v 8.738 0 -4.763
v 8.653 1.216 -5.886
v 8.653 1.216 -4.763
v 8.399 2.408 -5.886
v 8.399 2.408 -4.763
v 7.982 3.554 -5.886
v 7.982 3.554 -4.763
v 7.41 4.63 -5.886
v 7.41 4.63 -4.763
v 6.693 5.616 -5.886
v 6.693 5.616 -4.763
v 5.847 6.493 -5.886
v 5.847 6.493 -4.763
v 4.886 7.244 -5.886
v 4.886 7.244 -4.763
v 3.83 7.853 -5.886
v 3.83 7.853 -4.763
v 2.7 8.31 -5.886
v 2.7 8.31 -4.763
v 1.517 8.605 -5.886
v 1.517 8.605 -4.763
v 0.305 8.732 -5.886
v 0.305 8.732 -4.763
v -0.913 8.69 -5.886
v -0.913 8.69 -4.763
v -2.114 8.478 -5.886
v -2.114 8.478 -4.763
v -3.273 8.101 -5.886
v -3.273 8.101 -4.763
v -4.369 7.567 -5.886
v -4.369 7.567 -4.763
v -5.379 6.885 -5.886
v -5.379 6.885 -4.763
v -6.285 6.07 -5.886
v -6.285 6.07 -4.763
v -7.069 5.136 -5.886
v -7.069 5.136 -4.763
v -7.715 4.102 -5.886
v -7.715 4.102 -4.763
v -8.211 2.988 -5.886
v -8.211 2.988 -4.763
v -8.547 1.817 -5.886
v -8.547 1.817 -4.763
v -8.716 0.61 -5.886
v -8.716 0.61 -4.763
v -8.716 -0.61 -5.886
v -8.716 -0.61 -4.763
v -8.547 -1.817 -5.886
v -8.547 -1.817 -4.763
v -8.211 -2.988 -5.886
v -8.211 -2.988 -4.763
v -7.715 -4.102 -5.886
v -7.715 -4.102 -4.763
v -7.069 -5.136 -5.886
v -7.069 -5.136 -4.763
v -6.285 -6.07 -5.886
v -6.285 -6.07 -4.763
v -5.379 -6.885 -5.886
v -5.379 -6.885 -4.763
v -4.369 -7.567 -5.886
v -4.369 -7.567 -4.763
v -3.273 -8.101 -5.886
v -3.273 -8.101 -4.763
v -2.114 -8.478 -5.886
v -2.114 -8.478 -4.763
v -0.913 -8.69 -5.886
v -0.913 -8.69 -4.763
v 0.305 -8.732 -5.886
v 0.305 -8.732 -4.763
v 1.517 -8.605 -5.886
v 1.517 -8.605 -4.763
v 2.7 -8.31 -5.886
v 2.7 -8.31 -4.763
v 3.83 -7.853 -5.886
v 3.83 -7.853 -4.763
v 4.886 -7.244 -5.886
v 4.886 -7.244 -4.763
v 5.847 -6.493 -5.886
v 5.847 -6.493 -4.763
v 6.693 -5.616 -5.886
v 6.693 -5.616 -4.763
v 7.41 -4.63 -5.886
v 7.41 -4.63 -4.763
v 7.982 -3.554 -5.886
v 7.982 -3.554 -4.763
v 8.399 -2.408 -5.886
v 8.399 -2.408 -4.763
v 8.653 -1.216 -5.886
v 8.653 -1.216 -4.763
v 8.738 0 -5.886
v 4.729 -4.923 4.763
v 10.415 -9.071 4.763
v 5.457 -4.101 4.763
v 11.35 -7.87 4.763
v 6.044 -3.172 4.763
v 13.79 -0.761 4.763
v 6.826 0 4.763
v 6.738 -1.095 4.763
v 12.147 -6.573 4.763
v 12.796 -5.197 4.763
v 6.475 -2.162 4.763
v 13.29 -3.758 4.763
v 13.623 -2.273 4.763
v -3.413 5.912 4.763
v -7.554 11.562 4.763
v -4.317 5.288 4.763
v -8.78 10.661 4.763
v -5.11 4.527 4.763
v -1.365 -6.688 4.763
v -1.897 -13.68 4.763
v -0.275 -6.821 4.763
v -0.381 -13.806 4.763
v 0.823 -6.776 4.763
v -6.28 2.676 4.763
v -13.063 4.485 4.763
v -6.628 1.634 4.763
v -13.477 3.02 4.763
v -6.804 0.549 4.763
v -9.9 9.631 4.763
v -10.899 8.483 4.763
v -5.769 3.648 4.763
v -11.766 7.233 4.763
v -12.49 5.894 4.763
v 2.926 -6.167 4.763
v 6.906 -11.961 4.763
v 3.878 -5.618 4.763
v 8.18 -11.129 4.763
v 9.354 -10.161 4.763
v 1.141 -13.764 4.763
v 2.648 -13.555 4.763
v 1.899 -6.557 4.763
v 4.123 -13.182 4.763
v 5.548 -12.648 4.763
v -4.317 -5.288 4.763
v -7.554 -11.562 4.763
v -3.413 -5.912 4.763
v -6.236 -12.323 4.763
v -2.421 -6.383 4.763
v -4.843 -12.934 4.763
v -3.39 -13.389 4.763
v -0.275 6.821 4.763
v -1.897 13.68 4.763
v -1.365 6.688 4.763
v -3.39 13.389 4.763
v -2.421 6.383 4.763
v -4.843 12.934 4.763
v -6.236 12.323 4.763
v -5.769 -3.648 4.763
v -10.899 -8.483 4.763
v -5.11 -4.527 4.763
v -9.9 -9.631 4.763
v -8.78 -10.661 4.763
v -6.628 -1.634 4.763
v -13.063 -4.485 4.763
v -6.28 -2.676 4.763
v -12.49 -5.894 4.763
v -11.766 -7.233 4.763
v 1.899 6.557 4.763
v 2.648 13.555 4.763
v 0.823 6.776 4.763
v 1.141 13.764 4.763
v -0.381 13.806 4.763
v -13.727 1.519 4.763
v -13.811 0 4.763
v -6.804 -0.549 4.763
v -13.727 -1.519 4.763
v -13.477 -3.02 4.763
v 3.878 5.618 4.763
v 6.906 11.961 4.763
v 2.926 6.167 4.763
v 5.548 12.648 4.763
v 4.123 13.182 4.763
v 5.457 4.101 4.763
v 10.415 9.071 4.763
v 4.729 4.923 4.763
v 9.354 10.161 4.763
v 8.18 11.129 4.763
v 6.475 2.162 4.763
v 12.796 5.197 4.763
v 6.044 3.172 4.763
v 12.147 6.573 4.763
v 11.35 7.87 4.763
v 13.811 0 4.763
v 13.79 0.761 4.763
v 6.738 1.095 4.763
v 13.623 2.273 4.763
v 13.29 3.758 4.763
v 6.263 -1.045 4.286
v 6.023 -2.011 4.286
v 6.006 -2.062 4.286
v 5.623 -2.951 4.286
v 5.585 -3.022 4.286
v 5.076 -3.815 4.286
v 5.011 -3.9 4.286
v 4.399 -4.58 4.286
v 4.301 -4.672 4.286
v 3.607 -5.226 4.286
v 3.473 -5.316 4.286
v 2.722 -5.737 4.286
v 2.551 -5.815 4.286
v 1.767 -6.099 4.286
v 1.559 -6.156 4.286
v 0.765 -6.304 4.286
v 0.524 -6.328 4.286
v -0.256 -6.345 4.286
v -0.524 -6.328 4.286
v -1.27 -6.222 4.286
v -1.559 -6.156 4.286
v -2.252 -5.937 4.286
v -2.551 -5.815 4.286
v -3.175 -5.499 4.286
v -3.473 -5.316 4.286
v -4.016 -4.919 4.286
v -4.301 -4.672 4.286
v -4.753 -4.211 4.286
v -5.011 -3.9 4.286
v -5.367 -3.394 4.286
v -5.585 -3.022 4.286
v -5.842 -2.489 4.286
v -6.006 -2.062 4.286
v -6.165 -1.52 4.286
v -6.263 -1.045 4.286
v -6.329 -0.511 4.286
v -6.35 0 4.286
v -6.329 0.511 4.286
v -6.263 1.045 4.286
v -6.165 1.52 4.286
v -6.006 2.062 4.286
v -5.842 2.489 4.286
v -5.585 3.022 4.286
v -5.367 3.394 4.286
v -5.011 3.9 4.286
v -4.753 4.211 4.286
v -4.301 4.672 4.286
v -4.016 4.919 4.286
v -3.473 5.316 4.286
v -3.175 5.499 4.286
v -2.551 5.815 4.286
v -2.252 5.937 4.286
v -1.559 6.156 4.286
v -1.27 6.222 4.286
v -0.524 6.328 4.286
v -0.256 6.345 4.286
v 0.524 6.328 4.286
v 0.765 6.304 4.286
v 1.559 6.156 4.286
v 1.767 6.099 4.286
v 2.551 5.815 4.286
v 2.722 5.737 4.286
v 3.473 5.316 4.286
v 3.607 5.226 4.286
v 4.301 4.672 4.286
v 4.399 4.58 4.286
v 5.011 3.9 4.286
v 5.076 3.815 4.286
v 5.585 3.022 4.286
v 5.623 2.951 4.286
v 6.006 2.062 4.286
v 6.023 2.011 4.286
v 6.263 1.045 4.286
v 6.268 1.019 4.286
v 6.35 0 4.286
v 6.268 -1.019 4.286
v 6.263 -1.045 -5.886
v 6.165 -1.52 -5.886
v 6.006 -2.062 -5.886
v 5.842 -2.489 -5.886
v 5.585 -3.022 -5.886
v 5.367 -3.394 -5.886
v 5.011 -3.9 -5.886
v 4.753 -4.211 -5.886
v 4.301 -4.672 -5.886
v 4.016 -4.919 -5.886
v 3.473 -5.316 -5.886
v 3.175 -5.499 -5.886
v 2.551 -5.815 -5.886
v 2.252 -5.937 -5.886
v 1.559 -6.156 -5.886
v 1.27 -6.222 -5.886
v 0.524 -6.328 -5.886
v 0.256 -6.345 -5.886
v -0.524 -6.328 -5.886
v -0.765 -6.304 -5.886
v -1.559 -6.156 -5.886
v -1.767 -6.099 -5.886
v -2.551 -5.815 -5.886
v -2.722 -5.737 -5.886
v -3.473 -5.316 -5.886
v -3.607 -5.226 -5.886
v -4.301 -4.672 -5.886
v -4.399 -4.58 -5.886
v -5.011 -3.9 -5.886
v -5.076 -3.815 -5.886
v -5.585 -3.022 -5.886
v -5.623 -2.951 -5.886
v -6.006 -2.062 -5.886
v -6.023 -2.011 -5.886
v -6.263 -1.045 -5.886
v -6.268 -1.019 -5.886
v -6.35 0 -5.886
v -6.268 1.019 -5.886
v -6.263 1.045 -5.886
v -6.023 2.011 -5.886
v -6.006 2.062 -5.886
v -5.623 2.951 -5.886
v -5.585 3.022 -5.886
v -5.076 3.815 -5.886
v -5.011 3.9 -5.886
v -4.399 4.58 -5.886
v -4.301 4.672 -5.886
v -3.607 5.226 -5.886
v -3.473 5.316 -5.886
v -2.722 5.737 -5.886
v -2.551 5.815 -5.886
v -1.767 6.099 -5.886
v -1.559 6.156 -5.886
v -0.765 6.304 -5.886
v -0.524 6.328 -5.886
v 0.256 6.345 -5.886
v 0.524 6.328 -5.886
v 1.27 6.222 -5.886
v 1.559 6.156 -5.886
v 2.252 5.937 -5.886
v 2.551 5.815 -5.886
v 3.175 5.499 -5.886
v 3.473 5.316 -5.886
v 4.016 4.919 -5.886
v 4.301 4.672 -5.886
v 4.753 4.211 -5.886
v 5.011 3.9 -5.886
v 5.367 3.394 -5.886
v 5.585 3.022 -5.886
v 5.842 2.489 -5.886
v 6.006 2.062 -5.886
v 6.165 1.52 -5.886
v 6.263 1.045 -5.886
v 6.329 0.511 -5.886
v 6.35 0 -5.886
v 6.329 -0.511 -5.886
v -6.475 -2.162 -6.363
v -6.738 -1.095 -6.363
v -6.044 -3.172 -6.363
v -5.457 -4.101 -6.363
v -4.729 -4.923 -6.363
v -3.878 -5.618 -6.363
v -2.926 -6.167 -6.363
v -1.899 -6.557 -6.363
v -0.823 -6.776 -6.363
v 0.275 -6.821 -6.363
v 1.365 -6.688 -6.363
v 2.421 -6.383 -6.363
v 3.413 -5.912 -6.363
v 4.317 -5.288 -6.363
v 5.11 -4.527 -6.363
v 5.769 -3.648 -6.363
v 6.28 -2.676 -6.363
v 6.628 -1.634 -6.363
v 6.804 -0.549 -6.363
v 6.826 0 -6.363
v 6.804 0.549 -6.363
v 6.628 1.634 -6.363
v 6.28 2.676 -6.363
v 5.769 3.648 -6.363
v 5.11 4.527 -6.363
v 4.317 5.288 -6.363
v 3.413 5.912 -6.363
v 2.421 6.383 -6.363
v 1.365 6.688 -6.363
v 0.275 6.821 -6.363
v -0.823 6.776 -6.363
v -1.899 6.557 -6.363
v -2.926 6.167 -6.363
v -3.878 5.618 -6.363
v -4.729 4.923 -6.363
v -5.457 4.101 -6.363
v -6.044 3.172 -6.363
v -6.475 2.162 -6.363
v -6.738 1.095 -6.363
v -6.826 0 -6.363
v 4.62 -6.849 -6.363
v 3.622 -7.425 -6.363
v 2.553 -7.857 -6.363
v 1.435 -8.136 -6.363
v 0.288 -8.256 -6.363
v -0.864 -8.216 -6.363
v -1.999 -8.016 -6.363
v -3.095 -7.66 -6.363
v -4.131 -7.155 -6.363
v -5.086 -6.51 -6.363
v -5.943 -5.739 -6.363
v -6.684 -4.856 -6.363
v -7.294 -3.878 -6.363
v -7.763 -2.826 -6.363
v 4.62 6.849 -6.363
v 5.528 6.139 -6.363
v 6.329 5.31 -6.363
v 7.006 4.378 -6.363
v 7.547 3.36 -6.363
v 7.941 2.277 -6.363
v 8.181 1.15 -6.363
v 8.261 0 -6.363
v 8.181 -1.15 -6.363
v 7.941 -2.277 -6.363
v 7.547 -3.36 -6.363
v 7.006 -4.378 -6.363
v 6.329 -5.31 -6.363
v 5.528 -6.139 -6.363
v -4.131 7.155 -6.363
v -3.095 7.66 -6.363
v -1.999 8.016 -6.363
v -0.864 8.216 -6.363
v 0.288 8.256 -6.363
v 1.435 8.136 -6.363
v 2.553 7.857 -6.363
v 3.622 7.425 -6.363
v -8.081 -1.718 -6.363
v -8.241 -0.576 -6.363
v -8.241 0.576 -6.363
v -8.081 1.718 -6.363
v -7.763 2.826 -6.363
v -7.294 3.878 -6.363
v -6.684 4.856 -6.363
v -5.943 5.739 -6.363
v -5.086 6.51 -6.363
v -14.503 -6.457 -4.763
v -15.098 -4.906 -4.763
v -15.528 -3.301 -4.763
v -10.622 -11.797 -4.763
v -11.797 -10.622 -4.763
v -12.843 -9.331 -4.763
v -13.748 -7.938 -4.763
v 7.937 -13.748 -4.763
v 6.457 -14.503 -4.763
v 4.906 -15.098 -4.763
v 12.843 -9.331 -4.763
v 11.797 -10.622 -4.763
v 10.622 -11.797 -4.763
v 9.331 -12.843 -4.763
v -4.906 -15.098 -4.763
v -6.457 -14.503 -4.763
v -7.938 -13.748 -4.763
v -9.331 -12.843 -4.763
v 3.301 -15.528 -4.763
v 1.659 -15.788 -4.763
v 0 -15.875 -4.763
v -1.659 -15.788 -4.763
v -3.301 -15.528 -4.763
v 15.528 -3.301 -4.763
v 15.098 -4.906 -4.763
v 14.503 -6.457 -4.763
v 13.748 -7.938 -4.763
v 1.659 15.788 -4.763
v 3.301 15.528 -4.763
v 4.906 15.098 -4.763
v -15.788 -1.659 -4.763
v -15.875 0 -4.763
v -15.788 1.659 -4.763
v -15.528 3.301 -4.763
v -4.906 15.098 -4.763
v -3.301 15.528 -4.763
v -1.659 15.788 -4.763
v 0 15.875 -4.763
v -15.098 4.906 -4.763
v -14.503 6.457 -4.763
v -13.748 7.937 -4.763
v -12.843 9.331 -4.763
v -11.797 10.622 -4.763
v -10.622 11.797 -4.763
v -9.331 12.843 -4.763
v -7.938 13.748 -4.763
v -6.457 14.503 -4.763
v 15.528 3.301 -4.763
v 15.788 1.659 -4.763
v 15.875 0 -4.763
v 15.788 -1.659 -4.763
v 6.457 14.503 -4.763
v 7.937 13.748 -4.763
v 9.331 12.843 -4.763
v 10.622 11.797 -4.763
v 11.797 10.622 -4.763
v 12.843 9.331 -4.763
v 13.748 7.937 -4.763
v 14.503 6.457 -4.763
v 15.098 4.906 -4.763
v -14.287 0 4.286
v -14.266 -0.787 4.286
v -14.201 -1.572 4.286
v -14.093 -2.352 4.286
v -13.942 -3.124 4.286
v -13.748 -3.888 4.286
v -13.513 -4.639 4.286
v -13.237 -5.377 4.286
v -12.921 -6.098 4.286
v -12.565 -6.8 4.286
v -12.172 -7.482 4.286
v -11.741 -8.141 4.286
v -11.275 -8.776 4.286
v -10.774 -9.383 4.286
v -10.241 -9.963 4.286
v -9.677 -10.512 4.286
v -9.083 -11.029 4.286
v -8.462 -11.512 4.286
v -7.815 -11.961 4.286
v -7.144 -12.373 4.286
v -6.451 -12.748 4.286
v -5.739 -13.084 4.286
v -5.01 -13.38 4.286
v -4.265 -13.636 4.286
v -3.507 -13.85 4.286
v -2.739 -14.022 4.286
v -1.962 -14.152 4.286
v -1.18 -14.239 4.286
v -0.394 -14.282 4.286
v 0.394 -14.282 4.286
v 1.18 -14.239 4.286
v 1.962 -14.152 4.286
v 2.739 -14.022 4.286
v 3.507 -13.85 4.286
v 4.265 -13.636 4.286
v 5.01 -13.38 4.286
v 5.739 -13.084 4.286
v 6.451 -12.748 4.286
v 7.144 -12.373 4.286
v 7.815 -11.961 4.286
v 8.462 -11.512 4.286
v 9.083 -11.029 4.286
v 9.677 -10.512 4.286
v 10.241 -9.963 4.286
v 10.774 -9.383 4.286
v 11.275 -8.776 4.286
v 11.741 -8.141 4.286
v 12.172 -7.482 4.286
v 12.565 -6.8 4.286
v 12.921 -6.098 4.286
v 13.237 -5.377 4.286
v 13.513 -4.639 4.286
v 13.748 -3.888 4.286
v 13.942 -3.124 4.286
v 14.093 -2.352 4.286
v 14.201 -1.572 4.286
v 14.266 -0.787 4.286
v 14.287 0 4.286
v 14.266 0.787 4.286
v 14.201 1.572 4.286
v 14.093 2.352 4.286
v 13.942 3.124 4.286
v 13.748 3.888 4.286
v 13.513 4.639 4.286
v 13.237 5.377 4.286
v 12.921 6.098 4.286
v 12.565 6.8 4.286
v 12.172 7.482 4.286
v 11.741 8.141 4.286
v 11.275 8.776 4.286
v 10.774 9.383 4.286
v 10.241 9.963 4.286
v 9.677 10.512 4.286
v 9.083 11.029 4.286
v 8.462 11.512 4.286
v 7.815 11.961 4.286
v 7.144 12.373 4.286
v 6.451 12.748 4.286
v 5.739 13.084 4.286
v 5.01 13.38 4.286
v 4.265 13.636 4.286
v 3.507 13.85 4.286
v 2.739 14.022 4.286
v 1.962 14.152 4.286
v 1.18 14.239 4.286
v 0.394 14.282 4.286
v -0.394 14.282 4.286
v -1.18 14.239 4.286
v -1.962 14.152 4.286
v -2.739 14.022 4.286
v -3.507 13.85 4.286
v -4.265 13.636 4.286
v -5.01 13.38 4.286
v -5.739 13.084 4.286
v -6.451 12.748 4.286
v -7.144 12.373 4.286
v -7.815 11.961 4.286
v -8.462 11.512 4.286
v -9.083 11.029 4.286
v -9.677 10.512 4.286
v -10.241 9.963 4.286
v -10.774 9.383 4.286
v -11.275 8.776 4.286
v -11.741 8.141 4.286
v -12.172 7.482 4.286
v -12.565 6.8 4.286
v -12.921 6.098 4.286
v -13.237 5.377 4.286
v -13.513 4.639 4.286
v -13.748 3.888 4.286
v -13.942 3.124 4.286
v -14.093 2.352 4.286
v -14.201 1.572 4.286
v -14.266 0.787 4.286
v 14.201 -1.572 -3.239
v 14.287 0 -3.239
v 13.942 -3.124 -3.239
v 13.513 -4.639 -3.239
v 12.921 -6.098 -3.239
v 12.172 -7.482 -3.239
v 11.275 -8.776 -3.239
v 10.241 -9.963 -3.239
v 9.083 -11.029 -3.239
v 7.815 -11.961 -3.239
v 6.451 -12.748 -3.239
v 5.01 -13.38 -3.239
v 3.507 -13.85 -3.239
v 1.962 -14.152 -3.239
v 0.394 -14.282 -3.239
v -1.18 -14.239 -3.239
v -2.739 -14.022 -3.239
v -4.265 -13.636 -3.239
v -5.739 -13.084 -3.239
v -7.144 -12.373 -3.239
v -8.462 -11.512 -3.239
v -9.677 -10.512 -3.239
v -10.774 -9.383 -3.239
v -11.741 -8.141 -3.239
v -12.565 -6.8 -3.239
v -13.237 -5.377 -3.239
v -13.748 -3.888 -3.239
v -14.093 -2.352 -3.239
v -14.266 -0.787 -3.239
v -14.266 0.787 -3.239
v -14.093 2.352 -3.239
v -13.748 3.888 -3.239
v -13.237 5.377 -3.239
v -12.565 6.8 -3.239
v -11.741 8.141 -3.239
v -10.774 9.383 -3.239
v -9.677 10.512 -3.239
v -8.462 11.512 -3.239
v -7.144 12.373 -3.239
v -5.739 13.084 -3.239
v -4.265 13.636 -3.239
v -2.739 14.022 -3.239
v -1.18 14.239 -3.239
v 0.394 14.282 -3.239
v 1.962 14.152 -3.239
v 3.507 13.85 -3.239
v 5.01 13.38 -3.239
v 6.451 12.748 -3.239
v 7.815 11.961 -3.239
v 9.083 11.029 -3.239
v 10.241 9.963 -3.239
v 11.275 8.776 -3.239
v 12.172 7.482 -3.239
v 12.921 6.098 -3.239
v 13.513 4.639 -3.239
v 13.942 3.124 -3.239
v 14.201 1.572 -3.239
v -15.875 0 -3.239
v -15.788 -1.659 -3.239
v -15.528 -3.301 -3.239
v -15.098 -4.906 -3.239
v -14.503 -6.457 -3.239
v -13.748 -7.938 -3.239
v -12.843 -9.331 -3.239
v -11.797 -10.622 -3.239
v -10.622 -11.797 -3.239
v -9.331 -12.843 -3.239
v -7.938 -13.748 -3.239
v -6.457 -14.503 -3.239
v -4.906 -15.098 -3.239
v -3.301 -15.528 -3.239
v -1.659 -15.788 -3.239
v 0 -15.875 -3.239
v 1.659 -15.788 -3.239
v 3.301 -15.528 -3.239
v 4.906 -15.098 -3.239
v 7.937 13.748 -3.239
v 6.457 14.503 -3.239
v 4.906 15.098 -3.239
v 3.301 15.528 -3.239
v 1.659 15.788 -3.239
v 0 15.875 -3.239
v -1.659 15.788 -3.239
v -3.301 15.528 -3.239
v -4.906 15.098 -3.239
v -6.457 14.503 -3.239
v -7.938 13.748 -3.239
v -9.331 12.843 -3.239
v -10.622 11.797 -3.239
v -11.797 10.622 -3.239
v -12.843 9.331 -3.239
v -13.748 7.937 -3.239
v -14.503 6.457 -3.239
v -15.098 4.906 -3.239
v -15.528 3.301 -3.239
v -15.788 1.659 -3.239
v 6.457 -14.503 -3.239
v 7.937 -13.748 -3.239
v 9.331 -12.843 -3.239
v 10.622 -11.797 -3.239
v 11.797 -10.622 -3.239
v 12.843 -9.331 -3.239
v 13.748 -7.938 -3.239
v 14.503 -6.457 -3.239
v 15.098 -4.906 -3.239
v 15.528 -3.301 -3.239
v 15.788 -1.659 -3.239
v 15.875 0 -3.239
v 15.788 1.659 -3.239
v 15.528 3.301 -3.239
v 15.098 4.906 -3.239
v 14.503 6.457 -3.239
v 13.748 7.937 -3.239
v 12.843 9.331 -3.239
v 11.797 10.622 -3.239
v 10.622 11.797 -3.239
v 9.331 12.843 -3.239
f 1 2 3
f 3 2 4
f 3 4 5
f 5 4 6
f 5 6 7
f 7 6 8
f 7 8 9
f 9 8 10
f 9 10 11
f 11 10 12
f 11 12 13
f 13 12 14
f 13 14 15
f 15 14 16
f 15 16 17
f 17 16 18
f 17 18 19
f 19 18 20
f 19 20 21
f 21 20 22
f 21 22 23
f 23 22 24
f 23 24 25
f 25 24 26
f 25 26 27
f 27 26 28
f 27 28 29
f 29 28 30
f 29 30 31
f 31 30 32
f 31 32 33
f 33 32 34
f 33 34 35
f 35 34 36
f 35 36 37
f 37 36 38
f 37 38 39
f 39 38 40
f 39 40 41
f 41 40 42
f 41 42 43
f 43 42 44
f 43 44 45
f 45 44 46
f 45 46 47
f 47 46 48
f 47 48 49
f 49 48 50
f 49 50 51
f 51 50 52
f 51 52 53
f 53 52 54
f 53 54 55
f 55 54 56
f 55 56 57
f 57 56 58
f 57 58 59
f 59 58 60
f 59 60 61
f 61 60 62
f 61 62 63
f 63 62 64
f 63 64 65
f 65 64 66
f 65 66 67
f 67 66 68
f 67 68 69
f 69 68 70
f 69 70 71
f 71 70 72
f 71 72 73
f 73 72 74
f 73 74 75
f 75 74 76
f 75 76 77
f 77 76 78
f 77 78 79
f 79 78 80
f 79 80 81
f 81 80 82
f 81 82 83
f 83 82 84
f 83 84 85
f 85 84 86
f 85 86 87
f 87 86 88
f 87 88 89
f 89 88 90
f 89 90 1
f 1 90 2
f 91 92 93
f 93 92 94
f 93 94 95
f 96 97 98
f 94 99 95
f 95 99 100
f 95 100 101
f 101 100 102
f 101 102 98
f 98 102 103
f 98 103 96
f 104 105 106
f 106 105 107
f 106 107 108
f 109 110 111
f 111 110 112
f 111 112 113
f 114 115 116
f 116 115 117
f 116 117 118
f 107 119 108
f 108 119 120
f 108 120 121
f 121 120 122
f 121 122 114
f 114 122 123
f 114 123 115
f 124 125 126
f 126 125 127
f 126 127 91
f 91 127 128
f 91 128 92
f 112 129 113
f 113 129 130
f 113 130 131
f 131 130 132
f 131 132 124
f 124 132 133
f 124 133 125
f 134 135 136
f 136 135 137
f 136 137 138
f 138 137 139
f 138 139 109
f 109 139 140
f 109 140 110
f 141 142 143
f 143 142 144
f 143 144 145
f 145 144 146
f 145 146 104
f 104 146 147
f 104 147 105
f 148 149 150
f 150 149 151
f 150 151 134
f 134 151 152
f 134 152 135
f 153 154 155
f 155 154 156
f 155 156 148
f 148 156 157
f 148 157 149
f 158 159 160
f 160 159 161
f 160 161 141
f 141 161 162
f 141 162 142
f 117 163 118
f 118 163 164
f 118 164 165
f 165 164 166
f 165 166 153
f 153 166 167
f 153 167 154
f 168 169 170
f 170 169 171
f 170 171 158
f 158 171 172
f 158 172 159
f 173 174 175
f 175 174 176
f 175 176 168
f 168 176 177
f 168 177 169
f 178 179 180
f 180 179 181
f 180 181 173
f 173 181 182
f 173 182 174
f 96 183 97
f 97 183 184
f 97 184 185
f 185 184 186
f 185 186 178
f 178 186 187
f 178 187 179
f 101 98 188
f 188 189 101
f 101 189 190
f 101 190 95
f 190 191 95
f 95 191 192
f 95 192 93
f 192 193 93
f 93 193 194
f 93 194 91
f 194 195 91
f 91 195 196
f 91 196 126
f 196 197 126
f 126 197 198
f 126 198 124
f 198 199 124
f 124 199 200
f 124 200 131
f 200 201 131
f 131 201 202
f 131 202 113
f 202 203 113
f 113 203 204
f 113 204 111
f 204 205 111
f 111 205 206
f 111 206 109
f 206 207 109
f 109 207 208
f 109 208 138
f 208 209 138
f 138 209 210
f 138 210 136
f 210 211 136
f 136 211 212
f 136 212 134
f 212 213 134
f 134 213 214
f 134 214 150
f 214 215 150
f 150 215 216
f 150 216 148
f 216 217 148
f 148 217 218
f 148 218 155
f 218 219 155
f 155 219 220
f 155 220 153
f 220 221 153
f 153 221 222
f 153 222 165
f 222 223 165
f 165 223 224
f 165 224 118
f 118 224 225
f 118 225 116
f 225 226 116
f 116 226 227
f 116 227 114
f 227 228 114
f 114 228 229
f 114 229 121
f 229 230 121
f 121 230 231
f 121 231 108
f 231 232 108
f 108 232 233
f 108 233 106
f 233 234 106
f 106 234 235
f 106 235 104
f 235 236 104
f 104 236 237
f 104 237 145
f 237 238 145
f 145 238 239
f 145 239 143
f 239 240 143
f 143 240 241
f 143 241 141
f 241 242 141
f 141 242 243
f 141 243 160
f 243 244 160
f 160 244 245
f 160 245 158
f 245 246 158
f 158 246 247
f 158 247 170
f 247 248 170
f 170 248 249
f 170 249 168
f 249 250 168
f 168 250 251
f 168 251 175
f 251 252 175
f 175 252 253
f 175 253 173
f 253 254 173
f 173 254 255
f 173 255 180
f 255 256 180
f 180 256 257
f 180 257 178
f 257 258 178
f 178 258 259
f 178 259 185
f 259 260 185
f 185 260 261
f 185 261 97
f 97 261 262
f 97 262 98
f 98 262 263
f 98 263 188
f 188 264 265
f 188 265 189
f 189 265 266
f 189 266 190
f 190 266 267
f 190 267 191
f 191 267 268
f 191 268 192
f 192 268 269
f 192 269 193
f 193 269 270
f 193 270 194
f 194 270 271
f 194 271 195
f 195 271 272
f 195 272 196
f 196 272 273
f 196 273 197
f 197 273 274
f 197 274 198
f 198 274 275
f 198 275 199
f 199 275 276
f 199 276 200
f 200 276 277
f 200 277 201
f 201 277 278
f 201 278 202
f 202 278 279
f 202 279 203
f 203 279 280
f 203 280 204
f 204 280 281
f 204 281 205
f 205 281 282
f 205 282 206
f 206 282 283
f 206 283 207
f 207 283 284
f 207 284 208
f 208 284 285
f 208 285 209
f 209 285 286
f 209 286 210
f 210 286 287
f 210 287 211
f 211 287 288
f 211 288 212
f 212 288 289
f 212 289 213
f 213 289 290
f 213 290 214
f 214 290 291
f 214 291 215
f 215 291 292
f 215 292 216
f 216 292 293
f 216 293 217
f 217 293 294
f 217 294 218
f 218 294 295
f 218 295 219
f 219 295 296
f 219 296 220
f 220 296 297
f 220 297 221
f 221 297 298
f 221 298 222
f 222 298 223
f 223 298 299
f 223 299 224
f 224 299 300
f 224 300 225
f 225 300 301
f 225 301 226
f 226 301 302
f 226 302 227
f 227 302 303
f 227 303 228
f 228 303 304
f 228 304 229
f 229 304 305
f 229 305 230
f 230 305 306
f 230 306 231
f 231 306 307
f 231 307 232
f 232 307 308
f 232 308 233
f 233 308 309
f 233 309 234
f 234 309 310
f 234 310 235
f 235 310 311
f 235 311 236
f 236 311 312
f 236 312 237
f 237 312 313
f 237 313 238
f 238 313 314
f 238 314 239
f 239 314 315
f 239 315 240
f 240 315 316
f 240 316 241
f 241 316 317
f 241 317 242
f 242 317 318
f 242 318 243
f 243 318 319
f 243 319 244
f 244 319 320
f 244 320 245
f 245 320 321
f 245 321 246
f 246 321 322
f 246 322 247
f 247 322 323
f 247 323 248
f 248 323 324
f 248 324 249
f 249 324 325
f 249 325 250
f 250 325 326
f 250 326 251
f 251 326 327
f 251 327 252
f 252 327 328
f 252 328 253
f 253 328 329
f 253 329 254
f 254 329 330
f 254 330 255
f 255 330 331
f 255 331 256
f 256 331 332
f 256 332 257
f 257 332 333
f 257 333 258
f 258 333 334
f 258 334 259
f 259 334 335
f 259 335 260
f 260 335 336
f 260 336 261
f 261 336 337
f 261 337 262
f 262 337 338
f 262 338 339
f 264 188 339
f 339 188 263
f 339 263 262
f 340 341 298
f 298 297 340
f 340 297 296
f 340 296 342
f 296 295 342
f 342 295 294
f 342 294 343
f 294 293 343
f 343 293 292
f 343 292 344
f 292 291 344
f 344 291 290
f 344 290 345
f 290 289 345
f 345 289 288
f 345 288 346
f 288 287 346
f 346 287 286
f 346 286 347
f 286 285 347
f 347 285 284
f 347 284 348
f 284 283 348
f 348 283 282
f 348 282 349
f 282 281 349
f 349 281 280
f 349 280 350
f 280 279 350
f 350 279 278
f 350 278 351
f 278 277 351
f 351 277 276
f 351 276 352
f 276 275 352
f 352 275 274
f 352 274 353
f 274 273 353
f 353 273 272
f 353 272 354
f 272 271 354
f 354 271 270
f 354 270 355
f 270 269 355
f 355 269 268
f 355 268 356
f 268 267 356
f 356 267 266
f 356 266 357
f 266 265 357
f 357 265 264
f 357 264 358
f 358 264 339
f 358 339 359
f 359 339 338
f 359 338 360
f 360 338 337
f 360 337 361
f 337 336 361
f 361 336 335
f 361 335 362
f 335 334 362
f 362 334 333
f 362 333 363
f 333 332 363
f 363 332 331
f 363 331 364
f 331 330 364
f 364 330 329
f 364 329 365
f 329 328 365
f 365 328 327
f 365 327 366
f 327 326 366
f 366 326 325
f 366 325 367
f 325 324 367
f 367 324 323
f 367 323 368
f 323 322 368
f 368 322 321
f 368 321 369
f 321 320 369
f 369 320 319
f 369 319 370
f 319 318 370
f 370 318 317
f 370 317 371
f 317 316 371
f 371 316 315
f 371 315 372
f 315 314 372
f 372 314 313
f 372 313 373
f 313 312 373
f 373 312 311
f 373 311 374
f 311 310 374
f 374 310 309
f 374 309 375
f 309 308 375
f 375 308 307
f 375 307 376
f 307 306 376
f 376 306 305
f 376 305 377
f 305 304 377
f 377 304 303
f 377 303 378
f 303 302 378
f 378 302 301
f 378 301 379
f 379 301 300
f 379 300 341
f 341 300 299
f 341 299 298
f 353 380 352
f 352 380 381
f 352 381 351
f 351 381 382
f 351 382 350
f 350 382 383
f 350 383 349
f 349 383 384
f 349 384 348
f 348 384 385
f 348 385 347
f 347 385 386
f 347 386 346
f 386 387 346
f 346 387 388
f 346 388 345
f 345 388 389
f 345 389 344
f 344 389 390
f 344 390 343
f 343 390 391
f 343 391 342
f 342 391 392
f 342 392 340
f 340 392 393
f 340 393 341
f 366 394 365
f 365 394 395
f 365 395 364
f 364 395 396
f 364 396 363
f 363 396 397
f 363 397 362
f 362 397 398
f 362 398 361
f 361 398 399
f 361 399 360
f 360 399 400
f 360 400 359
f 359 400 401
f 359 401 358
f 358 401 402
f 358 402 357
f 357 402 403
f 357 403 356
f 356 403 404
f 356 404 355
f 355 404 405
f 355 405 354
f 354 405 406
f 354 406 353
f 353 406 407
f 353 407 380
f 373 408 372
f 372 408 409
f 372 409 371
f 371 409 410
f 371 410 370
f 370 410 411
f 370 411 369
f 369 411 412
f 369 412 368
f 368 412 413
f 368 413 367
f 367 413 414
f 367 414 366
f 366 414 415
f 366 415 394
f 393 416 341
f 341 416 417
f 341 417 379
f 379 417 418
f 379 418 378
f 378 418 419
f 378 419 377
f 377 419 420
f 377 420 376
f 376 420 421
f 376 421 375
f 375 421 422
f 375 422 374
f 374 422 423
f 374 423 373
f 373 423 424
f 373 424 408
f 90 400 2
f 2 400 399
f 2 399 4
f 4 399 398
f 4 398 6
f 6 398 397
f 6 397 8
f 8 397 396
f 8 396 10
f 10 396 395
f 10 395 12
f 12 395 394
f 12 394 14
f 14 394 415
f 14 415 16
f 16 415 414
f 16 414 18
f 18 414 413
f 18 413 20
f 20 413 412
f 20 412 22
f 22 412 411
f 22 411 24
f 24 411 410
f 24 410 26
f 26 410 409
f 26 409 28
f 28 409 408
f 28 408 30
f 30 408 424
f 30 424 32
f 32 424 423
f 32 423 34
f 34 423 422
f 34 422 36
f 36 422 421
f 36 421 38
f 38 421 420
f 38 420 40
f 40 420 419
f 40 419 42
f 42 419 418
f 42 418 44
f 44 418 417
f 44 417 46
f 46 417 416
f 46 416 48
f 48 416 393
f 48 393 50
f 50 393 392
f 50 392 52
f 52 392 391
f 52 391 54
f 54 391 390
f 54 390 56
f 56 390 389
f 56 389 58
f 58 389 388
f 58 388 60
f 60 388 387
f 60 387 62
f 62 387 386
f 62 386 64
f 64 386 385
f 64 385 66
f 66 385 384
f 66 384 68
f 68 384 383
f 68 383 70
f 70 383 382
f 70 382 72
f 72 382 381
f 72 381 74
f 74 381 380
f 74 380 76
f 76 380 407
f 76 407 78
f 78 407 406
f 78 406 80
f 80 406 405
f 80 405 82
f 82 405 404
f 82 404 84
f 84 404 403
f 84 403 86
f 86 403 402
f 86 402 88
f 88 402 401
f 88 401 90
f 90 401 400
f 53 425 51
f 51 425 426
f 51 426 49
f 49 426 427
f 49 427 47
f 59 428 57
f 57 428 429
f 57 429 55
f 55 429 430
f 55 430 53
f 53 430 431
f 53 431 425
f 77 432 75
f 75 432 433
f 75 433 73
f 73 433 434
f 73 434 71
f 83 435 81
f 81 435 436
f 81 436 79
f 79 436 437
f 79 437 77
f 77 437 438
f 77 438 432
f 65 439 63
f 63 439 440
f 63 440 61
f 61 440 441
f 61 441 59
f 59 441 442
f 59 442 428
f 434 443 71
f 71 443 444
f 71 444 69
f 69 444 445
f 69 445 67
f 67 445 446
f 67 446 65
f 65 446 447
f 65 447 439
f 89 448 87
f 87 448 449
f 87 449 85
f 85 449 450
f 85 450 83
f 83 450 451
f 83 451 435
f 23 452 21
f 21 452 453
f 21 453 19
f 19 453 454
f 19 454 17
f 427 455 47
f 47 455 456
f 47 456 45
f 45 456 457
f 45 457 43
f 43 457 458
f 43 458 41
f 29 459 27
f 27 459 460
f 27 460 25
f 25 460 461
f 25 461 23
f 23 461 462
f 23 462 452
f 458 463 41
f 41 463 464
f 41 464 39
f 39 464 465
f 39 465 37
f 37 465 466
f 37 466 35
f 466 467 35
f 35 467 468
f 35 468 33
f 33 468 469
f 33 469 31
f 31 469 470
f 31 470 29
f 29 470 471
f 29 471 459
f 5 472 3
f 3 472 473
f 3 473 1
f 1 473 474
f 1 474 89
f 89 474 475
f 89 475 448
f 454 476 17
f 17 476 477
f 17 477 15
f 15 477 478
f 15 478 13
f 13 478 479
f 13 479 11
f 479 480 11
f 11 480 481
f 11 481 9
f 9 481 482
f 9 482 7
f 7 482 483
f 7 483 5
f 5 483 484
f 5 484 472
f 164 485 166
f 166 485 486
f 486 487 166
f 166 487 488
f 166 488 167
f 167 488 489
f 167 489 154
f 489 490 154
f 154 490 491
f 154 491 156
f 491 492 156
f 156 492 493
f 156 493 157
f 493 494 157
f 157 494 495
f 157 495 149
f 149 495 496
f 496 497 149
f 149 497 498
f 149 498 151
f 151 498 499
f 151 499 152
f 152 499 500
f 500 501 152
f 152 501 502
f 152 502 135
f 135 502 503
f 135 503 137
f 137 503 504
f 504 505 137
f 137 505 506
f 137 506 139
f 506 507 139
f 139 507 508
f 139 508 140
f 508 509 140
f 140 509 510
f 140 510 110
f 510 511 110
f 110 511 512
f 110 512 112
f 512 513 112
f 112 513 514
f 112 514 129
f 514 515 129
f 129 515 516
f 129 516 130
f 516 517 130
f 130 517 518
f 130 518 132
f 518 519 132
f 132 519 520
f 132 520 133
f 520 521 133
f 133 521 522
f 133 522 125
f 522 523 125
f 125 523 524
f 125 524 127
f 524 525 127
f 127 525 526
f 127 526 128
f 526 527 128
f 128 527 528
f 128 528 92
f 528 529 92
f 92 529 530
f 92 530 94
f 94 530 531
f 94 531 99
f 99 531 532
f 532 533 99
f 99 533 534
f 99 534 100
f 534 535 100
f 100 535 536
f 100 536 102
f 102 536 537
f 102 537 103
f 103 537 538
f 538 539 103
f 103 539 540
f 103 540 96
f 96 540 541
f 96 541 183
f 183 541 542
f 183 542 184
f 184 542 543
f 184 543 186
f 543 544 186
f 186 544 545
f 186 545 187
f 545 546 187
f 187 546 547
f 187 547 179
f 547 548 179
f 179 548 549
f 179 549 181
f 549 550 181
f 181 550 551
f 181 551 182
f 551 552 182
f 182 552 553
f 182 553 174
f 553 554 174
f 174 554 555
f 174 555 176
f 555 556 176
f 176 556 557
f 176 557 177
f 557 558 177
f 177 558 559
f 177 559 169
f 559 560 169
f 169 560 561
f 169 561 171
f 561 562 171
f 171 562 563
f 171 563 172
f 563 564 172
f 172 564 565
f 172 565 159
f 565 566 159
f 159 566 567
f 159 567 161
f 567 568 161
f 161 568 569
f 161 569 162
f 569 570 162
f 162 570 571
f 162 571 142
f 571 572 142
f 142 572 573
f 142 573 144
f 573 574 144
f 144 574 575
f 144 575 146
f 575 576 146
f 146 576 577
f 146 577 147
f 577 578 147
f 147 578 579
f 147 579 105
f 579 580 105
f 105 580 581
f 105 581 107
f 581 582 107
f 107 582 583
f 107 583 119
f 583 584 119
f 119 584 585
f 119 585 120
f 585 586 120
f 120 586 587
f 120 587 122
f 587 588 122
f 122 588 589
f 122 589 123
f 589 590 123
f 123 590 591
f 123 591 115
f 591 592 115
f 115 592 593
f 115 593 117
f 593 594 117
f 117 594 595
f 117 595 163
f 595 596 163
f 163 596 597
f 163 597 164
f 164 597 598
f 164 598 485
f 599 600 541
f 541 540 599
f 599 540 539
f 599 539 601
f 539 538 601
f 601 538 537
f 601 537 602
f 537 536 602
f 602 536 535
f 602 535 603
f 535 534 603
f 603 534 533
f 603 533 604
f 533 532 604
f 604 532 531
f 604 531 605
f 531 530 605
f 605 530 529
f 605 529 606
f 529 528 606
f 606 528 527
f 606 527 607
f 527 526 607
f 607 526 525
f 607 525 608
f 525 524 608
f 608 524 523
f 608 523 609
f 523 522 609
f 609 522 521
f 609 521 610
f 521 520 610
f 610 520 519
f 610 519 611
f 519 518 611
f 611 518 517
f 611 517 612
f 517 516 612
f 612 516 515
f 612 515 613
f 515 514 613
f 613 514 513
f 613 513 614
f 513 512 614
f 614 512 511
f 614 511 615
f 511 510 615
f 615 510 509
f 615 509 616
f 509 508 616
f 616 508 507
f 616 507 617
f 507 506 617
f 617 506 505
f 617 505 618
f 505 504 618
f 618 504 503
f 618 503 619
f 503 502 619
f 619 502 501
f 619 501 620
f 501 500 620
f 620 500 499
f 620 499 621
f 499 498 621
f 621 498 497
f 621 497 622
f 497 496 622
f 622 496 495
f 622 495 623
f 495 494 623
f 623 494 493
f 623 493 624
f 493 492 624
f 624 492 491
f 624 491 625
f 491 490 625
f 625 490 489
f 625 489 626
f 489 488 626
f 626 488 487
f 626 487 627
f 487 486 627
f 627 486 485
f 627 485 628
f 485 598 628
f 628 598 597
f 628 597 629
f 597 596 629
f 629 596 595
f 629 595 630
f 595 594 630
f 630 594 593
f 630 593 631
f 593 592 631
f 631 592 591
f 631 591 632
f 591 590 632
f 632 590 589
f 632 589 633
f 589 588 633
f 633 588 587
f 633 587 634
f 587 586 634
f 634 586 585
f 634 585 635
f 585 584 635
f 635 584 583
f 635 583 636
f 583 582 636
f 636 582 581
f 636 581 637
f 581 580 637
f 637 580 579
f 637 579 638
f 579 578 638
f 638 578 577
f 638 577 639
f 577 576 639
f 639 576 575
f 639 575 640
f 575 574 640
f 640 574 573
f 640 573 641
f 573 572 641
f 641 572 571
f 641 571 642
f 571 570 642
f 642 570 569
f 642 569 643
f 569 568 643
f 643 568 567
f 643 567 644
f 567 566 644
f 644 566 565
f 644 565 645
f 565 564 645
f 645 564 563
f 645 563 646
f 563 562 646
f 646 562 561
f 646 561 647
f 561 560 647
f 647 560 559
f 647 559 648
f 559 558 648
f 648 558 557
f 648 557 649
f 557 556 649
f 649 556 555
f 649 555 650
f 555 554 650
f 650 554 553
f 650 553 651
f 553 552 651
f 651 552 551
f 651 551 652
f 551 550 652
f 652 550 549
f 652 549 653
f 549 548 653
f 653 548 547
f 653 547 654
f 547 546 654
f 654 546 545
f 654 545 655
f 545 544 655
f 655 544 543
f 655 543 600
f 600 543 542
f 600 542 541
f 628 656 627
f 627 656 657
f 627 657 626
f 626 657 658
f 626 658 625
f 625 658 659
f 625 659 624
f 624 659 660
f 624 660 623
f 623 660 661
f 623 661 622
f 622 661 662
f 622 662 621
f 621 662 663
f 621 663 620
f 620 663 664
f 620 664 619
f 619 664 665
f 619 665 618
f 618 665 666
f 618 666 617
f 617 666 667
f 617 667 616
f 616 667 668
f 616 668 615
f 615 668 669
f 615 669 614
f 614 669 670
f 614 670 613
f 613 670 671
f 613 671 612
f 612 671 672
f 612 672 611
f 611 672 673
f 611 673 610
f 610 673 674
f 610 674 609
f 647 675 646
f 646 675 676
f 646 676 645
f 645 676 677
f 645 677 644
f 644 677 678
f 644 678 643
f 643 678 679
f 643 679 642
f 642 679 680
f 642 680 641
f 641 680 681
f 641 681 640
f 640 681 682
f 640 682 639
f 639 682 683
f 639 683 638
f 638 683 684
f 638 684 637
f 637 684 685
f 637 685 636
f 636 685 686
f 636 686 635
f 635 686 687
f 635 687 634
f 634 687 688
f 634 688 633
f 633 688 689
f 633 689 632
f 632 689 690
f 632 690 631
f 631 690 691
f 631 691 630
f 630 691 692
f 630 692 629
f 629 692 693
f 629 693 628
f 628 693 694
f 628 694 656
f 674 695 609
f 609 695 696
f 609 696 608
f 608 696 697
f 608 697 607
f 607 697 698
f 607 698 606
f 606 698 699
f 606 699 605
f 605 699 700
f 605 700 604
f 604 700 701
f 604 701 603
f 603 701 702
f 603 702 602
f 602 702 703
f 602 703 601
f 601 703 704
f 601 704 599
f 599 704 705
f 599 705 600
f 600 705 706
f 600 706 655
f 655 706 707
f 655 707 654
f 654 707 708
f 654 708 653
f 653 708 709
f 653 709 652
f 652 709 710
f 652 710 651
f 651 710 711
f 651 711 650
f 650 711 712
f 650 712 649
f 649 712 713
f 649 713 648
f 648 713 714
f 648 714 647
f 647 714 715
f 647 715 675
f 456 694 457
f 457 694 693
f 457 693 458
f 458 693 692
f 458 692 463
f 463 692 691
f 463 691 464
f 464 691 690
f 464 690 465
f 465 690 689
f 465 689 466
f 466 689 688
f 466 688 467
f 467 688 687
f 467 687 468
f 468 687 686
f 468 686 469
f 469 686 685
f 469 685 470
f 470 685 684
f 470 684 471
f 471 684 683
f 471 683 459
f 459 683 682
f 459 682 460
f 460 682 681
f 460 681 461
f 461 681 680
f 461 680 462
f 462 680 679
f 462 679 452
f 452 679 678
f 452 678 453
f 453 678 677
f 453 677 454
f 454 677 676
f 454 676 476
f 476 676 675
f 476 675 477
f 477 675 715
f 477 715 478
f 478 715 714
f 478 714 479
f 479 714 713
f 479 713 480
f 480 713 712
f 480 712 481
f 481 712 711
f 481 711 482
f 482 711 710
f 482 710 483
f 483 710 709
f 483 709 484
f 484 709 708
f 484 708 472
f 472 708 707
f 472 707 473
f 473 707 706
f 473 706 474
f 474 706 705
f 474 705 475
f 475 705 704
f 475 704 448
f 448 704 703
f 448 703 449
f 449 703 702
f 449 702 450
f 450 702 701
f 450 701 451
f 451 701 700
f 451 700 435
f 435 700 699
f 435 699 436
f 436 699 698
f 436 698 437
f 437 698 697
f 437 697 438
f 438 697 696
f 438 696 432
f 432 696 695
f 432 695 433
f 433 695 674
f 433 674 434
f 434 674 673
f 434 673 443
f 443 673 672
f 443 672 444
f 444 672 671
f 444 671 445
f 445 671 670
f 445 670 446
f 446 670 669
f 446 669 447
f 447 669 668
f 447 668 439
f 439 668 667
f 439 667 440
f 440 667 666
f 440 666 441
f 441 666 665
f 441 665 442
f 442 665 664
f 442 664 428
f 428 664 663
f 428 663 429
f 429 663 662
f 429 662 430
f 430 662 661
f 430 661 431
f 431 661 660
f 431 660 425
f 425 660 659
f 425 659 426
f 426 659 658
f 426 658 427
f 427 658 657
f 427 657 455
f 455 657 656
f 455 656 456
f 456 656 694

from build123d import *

# Parameters (mm, degrees)
SKETCH6_W           = 1.524
SKETCH6_H           = 5.1562
CIRPATTERN1_COUNT   = 12
SKETCH7_R           = 13.81125
SKETCH7_R_2         = 6.82625
BOSS_EXTRUDE1_DEPTH = 9.525


with BuildPart() as part:
    # Sketch1 → Revolve1 (revolve)
    with BuildSketch(Plane(origin=(0, 0, 0), x_dir=(0, 0, -1), z_dir=(1, 0, 0)), mode=Mode.PRIVATE) as revolve1_sk:
        with BuildLine():
            Line((4.28625, 14.2875), (-4.28625, 14.2875))
            Line((-4.28625, 14.2875), (-4.7625, 13.81125))
            Line((-4.7625, 13.81125), (-4.7625, 10.7188))
            Line((-4.7625, 10.7188), (-2.347405, 10.7188))
            ThreePointArc((-2.347405, 10.7188), (0, 12.7), (2.347405, 10.7188))
            Line((2.347405, 10.7188), (4.7625, 10.7188))
            Line((4.7625, 10.7188), (4.7625, 13.81125))
            Line((4.7625, 13.81125), (4.28625, 14.2875))
        make_face()
    revolve(revolve1_sk.sketch.rotate(Axis((0, 0, 4.7625), (0, 0, -1)), 90), axis=Axis((0, 0, 4.7625), (0, 0, -1)))

    # Sketch6 → Revolve6 (revolve)
    with BuildSketch(Plane(origin=(0, 0, 0), x_dir=(0, 0, -1), z_dir=(1, 0, 0)), mode=Mode.PRIVATE) as revolve6_sk:
        with Locations((4.0005, 13.2969)):
            Rectangle(SKETCH6_W, SKETCH6_H)
    revolve(revolve6_sk.sketch.rotate(Axis((0, 0, -4.7625), (0, 0, 1)), 270), axis=Axis((0, 0, -4.7625), (0, 0, 1)))



with BuildPart() as body_2:
    # Sketch3 → Revolve3 (revolve)
    with BuildSketch(Plane(origin=(0, 0, 0), x_dir=(0, 0, -1), z_dir=(1, 0, 0)), mode=Mode.PRIVATE) as revolve3_sk:
        with BuildLine():
            Line((-4.7625, 6.82625), (-4.7625, 8.26135))
            Line((-4.7625, 8.26135), (-4.28625, 8.7376))
            Line((-4.28625, 8.7376), (-1.780538, 8.7376))
            ThreePointArc((-1.780538, 8.7376), (0, 7.9375), (1.780538, 8.7376))
            Line((1.780538, 8.7376), (5.88645, 8.7376))
            Line((5.88645, 8.7376), (6.3627, 8.26135))
            Line((6.3627, 8.26135), (6.3627, 6.82625))
            Line((6.3627, 6.82625), (5.88645, 6.35))
            Line((5.88645, 6.35), (-4.28625, 6.35))
            Line((-4.28625, 6.35), (-4.7625, 6.82625))
        make_face()
    revolve(revolve3_sk.sketch.rotate(Axis((0, 0, 4.7625), (0, 0, -1)), 90), axis=Axis((0, 0, 4.7625), (0, 0, -1)))


with BuildPart() as body_3:
    # Sketch4 → Revolve4 (revolve)
    with BuildSketch(Plane(origin=(0, 0, 0), x_dir=(0, 0, -1), z_dir=(1, 0, 0))):
        with BuildLine():
            Line((-2.38125, 10.31875), (2.38125, 10.31875))
            ThreePointArc((2.38125, 10.31875), (0, 12.7), (-2.38125, 10.31875))
        make_face()
    revolve(axis=Axis((0, 10.31875, 2.38125), (0, 0, -1)))


with BuildPart() as cirpattern1_1:
    # CirPattern1: pattern copy
    add(body_3.part.rotate(Axis((0, 0, 0), (0, 0, 1)), 1 * 360 / CIRPATTERN1_COUNT))


with BuildPart() as cirpattern1_2:
    # CirPattern1: pattern copy
    add(body_3.part.rotate(Axis((0, 0, 0), (0, 0, 1)), 2 * 360 / CIRPATTERN1_COUNT))


with BuildPart() as cirpattern1_3:
    # CirPattern1: pattern copy
    add(body_3.part.rotate(Axis((0, 0, 0), (0, 0, 1)), 3 * 360 / CIRPATTERN1_COUNT))


with BuildPart() as cirpattern1_4:
    # CirPattern1: pattern copy
    add(body_3.part.rotate(Axis((0, 0, 0), (0, 0, 1)), 4 * 360 / CIRPATTERN1_COUNT))


with BuildPart() as cirpattern1_5:
    # CirPattern1: pattern copy
    add(body_3.part.rotate(Axis((0, 0, 0), (0, 0, 1)), 5 * 360 / CIRPATTERN1_COUNT))


with BuildPart() as cirpattern1_6:
    # CirPattern1: pattern copy
    add(body_3.part.rotate(Axis((0, 0, 0), (0, 0, 1)), 6 * 360 / CIRPATTERN1_COUNT))


with BuildPart() as cirpattern1_7:
    # CirPattern1: pattern copy
    add(body_3.part.rotate(Axis((0, 0, 0), (0, 0, 1)), 7 * 360 / CIRPATTERN1_COUNT))


with BuildPart() as cirpattern1_8:
    # CirPattern1: pattern copy
    add(body_3.part.rotate(Axis((0, 0, 0), (0, 0, 1)), 8 * 360 / CIRPATTERN1_COUNT))


with BuildPart() as cirpattern1_9:
    # CirPattern1: pattern copy
    add(body_3.part.rotate(Axis((0, 0, 0), (0, 0, 1)), 9 * 360 / CIRPATTERN1_COUNT))


with BuildPart() as cirpattern1_10:
    # CirPattern1: pattern copy
    add(body_3.part.rotate(Axis((0, 0, 0), (0, 0, 1)), 10 * 360 / CIRPATTERN1_COUNT))


with BuildPart() as cirpattern1_11:
    # CirPattern1: pattern copy
    add(body_3.part.rotate(Axis((0, 0, 0), (0, 0, 1)), 11 * 360 / CIRPATTERN1_COUNT))


with BuildPart() as part_1:
    add(part.part)

    add(body_2.part)  # Boss-Extrude1 merges body 2

    add(body_3.part)  # Boss-Extrude1 merges body 3

    add(cirpattern1_1.part)  # Boss-Extrude1 merges CirPattern1_1

    add(cirpattern1_2.part)  # Boss-Extrude1 merges CirPattern1_2

    add(cirpattern1_3.part)  # Boss-Extrude1 merges CirPattern1_3

    add(cirpattern1_4.part)  # Boss-Extrude1 merges CirPattern1_4

    add(cirpattern1_5.part)  # Boss-Extrude1 merges CirPattern1_5

    add(cirpattern1_6.part)  # Boss-Extrude1 merges CirPattern1_6

    add(cirpattern1_7.part)  # Boss-Extrude1 merges CirPattern1_7

    add(cirpattern1_8.part)  # Boss-Extrude1 merges CirPattern1_8

    add(cirpattern1_9.part)  # Boss-Extrude1 merges CirPattern1_9

    add(cirpattern1_10.part)  # Boss-Extrude1 merges CirPattern1_10

    add(cirpattern1_11.part)  # Boss-Extrude1 merges CirPattern1_11
    # Sketch7 → Boss-Extrude1 (add)
    with BuildSketch(Plane.XY.offset(4.7625)):
        Circle(SKETCH7_R)
        Circle(SKETCH7_R_2, mode=Mode.SUBTRACT)
    extrude(amount=-BOSS_EXTRUDE1_DEPTH)


solid = part_1.part
